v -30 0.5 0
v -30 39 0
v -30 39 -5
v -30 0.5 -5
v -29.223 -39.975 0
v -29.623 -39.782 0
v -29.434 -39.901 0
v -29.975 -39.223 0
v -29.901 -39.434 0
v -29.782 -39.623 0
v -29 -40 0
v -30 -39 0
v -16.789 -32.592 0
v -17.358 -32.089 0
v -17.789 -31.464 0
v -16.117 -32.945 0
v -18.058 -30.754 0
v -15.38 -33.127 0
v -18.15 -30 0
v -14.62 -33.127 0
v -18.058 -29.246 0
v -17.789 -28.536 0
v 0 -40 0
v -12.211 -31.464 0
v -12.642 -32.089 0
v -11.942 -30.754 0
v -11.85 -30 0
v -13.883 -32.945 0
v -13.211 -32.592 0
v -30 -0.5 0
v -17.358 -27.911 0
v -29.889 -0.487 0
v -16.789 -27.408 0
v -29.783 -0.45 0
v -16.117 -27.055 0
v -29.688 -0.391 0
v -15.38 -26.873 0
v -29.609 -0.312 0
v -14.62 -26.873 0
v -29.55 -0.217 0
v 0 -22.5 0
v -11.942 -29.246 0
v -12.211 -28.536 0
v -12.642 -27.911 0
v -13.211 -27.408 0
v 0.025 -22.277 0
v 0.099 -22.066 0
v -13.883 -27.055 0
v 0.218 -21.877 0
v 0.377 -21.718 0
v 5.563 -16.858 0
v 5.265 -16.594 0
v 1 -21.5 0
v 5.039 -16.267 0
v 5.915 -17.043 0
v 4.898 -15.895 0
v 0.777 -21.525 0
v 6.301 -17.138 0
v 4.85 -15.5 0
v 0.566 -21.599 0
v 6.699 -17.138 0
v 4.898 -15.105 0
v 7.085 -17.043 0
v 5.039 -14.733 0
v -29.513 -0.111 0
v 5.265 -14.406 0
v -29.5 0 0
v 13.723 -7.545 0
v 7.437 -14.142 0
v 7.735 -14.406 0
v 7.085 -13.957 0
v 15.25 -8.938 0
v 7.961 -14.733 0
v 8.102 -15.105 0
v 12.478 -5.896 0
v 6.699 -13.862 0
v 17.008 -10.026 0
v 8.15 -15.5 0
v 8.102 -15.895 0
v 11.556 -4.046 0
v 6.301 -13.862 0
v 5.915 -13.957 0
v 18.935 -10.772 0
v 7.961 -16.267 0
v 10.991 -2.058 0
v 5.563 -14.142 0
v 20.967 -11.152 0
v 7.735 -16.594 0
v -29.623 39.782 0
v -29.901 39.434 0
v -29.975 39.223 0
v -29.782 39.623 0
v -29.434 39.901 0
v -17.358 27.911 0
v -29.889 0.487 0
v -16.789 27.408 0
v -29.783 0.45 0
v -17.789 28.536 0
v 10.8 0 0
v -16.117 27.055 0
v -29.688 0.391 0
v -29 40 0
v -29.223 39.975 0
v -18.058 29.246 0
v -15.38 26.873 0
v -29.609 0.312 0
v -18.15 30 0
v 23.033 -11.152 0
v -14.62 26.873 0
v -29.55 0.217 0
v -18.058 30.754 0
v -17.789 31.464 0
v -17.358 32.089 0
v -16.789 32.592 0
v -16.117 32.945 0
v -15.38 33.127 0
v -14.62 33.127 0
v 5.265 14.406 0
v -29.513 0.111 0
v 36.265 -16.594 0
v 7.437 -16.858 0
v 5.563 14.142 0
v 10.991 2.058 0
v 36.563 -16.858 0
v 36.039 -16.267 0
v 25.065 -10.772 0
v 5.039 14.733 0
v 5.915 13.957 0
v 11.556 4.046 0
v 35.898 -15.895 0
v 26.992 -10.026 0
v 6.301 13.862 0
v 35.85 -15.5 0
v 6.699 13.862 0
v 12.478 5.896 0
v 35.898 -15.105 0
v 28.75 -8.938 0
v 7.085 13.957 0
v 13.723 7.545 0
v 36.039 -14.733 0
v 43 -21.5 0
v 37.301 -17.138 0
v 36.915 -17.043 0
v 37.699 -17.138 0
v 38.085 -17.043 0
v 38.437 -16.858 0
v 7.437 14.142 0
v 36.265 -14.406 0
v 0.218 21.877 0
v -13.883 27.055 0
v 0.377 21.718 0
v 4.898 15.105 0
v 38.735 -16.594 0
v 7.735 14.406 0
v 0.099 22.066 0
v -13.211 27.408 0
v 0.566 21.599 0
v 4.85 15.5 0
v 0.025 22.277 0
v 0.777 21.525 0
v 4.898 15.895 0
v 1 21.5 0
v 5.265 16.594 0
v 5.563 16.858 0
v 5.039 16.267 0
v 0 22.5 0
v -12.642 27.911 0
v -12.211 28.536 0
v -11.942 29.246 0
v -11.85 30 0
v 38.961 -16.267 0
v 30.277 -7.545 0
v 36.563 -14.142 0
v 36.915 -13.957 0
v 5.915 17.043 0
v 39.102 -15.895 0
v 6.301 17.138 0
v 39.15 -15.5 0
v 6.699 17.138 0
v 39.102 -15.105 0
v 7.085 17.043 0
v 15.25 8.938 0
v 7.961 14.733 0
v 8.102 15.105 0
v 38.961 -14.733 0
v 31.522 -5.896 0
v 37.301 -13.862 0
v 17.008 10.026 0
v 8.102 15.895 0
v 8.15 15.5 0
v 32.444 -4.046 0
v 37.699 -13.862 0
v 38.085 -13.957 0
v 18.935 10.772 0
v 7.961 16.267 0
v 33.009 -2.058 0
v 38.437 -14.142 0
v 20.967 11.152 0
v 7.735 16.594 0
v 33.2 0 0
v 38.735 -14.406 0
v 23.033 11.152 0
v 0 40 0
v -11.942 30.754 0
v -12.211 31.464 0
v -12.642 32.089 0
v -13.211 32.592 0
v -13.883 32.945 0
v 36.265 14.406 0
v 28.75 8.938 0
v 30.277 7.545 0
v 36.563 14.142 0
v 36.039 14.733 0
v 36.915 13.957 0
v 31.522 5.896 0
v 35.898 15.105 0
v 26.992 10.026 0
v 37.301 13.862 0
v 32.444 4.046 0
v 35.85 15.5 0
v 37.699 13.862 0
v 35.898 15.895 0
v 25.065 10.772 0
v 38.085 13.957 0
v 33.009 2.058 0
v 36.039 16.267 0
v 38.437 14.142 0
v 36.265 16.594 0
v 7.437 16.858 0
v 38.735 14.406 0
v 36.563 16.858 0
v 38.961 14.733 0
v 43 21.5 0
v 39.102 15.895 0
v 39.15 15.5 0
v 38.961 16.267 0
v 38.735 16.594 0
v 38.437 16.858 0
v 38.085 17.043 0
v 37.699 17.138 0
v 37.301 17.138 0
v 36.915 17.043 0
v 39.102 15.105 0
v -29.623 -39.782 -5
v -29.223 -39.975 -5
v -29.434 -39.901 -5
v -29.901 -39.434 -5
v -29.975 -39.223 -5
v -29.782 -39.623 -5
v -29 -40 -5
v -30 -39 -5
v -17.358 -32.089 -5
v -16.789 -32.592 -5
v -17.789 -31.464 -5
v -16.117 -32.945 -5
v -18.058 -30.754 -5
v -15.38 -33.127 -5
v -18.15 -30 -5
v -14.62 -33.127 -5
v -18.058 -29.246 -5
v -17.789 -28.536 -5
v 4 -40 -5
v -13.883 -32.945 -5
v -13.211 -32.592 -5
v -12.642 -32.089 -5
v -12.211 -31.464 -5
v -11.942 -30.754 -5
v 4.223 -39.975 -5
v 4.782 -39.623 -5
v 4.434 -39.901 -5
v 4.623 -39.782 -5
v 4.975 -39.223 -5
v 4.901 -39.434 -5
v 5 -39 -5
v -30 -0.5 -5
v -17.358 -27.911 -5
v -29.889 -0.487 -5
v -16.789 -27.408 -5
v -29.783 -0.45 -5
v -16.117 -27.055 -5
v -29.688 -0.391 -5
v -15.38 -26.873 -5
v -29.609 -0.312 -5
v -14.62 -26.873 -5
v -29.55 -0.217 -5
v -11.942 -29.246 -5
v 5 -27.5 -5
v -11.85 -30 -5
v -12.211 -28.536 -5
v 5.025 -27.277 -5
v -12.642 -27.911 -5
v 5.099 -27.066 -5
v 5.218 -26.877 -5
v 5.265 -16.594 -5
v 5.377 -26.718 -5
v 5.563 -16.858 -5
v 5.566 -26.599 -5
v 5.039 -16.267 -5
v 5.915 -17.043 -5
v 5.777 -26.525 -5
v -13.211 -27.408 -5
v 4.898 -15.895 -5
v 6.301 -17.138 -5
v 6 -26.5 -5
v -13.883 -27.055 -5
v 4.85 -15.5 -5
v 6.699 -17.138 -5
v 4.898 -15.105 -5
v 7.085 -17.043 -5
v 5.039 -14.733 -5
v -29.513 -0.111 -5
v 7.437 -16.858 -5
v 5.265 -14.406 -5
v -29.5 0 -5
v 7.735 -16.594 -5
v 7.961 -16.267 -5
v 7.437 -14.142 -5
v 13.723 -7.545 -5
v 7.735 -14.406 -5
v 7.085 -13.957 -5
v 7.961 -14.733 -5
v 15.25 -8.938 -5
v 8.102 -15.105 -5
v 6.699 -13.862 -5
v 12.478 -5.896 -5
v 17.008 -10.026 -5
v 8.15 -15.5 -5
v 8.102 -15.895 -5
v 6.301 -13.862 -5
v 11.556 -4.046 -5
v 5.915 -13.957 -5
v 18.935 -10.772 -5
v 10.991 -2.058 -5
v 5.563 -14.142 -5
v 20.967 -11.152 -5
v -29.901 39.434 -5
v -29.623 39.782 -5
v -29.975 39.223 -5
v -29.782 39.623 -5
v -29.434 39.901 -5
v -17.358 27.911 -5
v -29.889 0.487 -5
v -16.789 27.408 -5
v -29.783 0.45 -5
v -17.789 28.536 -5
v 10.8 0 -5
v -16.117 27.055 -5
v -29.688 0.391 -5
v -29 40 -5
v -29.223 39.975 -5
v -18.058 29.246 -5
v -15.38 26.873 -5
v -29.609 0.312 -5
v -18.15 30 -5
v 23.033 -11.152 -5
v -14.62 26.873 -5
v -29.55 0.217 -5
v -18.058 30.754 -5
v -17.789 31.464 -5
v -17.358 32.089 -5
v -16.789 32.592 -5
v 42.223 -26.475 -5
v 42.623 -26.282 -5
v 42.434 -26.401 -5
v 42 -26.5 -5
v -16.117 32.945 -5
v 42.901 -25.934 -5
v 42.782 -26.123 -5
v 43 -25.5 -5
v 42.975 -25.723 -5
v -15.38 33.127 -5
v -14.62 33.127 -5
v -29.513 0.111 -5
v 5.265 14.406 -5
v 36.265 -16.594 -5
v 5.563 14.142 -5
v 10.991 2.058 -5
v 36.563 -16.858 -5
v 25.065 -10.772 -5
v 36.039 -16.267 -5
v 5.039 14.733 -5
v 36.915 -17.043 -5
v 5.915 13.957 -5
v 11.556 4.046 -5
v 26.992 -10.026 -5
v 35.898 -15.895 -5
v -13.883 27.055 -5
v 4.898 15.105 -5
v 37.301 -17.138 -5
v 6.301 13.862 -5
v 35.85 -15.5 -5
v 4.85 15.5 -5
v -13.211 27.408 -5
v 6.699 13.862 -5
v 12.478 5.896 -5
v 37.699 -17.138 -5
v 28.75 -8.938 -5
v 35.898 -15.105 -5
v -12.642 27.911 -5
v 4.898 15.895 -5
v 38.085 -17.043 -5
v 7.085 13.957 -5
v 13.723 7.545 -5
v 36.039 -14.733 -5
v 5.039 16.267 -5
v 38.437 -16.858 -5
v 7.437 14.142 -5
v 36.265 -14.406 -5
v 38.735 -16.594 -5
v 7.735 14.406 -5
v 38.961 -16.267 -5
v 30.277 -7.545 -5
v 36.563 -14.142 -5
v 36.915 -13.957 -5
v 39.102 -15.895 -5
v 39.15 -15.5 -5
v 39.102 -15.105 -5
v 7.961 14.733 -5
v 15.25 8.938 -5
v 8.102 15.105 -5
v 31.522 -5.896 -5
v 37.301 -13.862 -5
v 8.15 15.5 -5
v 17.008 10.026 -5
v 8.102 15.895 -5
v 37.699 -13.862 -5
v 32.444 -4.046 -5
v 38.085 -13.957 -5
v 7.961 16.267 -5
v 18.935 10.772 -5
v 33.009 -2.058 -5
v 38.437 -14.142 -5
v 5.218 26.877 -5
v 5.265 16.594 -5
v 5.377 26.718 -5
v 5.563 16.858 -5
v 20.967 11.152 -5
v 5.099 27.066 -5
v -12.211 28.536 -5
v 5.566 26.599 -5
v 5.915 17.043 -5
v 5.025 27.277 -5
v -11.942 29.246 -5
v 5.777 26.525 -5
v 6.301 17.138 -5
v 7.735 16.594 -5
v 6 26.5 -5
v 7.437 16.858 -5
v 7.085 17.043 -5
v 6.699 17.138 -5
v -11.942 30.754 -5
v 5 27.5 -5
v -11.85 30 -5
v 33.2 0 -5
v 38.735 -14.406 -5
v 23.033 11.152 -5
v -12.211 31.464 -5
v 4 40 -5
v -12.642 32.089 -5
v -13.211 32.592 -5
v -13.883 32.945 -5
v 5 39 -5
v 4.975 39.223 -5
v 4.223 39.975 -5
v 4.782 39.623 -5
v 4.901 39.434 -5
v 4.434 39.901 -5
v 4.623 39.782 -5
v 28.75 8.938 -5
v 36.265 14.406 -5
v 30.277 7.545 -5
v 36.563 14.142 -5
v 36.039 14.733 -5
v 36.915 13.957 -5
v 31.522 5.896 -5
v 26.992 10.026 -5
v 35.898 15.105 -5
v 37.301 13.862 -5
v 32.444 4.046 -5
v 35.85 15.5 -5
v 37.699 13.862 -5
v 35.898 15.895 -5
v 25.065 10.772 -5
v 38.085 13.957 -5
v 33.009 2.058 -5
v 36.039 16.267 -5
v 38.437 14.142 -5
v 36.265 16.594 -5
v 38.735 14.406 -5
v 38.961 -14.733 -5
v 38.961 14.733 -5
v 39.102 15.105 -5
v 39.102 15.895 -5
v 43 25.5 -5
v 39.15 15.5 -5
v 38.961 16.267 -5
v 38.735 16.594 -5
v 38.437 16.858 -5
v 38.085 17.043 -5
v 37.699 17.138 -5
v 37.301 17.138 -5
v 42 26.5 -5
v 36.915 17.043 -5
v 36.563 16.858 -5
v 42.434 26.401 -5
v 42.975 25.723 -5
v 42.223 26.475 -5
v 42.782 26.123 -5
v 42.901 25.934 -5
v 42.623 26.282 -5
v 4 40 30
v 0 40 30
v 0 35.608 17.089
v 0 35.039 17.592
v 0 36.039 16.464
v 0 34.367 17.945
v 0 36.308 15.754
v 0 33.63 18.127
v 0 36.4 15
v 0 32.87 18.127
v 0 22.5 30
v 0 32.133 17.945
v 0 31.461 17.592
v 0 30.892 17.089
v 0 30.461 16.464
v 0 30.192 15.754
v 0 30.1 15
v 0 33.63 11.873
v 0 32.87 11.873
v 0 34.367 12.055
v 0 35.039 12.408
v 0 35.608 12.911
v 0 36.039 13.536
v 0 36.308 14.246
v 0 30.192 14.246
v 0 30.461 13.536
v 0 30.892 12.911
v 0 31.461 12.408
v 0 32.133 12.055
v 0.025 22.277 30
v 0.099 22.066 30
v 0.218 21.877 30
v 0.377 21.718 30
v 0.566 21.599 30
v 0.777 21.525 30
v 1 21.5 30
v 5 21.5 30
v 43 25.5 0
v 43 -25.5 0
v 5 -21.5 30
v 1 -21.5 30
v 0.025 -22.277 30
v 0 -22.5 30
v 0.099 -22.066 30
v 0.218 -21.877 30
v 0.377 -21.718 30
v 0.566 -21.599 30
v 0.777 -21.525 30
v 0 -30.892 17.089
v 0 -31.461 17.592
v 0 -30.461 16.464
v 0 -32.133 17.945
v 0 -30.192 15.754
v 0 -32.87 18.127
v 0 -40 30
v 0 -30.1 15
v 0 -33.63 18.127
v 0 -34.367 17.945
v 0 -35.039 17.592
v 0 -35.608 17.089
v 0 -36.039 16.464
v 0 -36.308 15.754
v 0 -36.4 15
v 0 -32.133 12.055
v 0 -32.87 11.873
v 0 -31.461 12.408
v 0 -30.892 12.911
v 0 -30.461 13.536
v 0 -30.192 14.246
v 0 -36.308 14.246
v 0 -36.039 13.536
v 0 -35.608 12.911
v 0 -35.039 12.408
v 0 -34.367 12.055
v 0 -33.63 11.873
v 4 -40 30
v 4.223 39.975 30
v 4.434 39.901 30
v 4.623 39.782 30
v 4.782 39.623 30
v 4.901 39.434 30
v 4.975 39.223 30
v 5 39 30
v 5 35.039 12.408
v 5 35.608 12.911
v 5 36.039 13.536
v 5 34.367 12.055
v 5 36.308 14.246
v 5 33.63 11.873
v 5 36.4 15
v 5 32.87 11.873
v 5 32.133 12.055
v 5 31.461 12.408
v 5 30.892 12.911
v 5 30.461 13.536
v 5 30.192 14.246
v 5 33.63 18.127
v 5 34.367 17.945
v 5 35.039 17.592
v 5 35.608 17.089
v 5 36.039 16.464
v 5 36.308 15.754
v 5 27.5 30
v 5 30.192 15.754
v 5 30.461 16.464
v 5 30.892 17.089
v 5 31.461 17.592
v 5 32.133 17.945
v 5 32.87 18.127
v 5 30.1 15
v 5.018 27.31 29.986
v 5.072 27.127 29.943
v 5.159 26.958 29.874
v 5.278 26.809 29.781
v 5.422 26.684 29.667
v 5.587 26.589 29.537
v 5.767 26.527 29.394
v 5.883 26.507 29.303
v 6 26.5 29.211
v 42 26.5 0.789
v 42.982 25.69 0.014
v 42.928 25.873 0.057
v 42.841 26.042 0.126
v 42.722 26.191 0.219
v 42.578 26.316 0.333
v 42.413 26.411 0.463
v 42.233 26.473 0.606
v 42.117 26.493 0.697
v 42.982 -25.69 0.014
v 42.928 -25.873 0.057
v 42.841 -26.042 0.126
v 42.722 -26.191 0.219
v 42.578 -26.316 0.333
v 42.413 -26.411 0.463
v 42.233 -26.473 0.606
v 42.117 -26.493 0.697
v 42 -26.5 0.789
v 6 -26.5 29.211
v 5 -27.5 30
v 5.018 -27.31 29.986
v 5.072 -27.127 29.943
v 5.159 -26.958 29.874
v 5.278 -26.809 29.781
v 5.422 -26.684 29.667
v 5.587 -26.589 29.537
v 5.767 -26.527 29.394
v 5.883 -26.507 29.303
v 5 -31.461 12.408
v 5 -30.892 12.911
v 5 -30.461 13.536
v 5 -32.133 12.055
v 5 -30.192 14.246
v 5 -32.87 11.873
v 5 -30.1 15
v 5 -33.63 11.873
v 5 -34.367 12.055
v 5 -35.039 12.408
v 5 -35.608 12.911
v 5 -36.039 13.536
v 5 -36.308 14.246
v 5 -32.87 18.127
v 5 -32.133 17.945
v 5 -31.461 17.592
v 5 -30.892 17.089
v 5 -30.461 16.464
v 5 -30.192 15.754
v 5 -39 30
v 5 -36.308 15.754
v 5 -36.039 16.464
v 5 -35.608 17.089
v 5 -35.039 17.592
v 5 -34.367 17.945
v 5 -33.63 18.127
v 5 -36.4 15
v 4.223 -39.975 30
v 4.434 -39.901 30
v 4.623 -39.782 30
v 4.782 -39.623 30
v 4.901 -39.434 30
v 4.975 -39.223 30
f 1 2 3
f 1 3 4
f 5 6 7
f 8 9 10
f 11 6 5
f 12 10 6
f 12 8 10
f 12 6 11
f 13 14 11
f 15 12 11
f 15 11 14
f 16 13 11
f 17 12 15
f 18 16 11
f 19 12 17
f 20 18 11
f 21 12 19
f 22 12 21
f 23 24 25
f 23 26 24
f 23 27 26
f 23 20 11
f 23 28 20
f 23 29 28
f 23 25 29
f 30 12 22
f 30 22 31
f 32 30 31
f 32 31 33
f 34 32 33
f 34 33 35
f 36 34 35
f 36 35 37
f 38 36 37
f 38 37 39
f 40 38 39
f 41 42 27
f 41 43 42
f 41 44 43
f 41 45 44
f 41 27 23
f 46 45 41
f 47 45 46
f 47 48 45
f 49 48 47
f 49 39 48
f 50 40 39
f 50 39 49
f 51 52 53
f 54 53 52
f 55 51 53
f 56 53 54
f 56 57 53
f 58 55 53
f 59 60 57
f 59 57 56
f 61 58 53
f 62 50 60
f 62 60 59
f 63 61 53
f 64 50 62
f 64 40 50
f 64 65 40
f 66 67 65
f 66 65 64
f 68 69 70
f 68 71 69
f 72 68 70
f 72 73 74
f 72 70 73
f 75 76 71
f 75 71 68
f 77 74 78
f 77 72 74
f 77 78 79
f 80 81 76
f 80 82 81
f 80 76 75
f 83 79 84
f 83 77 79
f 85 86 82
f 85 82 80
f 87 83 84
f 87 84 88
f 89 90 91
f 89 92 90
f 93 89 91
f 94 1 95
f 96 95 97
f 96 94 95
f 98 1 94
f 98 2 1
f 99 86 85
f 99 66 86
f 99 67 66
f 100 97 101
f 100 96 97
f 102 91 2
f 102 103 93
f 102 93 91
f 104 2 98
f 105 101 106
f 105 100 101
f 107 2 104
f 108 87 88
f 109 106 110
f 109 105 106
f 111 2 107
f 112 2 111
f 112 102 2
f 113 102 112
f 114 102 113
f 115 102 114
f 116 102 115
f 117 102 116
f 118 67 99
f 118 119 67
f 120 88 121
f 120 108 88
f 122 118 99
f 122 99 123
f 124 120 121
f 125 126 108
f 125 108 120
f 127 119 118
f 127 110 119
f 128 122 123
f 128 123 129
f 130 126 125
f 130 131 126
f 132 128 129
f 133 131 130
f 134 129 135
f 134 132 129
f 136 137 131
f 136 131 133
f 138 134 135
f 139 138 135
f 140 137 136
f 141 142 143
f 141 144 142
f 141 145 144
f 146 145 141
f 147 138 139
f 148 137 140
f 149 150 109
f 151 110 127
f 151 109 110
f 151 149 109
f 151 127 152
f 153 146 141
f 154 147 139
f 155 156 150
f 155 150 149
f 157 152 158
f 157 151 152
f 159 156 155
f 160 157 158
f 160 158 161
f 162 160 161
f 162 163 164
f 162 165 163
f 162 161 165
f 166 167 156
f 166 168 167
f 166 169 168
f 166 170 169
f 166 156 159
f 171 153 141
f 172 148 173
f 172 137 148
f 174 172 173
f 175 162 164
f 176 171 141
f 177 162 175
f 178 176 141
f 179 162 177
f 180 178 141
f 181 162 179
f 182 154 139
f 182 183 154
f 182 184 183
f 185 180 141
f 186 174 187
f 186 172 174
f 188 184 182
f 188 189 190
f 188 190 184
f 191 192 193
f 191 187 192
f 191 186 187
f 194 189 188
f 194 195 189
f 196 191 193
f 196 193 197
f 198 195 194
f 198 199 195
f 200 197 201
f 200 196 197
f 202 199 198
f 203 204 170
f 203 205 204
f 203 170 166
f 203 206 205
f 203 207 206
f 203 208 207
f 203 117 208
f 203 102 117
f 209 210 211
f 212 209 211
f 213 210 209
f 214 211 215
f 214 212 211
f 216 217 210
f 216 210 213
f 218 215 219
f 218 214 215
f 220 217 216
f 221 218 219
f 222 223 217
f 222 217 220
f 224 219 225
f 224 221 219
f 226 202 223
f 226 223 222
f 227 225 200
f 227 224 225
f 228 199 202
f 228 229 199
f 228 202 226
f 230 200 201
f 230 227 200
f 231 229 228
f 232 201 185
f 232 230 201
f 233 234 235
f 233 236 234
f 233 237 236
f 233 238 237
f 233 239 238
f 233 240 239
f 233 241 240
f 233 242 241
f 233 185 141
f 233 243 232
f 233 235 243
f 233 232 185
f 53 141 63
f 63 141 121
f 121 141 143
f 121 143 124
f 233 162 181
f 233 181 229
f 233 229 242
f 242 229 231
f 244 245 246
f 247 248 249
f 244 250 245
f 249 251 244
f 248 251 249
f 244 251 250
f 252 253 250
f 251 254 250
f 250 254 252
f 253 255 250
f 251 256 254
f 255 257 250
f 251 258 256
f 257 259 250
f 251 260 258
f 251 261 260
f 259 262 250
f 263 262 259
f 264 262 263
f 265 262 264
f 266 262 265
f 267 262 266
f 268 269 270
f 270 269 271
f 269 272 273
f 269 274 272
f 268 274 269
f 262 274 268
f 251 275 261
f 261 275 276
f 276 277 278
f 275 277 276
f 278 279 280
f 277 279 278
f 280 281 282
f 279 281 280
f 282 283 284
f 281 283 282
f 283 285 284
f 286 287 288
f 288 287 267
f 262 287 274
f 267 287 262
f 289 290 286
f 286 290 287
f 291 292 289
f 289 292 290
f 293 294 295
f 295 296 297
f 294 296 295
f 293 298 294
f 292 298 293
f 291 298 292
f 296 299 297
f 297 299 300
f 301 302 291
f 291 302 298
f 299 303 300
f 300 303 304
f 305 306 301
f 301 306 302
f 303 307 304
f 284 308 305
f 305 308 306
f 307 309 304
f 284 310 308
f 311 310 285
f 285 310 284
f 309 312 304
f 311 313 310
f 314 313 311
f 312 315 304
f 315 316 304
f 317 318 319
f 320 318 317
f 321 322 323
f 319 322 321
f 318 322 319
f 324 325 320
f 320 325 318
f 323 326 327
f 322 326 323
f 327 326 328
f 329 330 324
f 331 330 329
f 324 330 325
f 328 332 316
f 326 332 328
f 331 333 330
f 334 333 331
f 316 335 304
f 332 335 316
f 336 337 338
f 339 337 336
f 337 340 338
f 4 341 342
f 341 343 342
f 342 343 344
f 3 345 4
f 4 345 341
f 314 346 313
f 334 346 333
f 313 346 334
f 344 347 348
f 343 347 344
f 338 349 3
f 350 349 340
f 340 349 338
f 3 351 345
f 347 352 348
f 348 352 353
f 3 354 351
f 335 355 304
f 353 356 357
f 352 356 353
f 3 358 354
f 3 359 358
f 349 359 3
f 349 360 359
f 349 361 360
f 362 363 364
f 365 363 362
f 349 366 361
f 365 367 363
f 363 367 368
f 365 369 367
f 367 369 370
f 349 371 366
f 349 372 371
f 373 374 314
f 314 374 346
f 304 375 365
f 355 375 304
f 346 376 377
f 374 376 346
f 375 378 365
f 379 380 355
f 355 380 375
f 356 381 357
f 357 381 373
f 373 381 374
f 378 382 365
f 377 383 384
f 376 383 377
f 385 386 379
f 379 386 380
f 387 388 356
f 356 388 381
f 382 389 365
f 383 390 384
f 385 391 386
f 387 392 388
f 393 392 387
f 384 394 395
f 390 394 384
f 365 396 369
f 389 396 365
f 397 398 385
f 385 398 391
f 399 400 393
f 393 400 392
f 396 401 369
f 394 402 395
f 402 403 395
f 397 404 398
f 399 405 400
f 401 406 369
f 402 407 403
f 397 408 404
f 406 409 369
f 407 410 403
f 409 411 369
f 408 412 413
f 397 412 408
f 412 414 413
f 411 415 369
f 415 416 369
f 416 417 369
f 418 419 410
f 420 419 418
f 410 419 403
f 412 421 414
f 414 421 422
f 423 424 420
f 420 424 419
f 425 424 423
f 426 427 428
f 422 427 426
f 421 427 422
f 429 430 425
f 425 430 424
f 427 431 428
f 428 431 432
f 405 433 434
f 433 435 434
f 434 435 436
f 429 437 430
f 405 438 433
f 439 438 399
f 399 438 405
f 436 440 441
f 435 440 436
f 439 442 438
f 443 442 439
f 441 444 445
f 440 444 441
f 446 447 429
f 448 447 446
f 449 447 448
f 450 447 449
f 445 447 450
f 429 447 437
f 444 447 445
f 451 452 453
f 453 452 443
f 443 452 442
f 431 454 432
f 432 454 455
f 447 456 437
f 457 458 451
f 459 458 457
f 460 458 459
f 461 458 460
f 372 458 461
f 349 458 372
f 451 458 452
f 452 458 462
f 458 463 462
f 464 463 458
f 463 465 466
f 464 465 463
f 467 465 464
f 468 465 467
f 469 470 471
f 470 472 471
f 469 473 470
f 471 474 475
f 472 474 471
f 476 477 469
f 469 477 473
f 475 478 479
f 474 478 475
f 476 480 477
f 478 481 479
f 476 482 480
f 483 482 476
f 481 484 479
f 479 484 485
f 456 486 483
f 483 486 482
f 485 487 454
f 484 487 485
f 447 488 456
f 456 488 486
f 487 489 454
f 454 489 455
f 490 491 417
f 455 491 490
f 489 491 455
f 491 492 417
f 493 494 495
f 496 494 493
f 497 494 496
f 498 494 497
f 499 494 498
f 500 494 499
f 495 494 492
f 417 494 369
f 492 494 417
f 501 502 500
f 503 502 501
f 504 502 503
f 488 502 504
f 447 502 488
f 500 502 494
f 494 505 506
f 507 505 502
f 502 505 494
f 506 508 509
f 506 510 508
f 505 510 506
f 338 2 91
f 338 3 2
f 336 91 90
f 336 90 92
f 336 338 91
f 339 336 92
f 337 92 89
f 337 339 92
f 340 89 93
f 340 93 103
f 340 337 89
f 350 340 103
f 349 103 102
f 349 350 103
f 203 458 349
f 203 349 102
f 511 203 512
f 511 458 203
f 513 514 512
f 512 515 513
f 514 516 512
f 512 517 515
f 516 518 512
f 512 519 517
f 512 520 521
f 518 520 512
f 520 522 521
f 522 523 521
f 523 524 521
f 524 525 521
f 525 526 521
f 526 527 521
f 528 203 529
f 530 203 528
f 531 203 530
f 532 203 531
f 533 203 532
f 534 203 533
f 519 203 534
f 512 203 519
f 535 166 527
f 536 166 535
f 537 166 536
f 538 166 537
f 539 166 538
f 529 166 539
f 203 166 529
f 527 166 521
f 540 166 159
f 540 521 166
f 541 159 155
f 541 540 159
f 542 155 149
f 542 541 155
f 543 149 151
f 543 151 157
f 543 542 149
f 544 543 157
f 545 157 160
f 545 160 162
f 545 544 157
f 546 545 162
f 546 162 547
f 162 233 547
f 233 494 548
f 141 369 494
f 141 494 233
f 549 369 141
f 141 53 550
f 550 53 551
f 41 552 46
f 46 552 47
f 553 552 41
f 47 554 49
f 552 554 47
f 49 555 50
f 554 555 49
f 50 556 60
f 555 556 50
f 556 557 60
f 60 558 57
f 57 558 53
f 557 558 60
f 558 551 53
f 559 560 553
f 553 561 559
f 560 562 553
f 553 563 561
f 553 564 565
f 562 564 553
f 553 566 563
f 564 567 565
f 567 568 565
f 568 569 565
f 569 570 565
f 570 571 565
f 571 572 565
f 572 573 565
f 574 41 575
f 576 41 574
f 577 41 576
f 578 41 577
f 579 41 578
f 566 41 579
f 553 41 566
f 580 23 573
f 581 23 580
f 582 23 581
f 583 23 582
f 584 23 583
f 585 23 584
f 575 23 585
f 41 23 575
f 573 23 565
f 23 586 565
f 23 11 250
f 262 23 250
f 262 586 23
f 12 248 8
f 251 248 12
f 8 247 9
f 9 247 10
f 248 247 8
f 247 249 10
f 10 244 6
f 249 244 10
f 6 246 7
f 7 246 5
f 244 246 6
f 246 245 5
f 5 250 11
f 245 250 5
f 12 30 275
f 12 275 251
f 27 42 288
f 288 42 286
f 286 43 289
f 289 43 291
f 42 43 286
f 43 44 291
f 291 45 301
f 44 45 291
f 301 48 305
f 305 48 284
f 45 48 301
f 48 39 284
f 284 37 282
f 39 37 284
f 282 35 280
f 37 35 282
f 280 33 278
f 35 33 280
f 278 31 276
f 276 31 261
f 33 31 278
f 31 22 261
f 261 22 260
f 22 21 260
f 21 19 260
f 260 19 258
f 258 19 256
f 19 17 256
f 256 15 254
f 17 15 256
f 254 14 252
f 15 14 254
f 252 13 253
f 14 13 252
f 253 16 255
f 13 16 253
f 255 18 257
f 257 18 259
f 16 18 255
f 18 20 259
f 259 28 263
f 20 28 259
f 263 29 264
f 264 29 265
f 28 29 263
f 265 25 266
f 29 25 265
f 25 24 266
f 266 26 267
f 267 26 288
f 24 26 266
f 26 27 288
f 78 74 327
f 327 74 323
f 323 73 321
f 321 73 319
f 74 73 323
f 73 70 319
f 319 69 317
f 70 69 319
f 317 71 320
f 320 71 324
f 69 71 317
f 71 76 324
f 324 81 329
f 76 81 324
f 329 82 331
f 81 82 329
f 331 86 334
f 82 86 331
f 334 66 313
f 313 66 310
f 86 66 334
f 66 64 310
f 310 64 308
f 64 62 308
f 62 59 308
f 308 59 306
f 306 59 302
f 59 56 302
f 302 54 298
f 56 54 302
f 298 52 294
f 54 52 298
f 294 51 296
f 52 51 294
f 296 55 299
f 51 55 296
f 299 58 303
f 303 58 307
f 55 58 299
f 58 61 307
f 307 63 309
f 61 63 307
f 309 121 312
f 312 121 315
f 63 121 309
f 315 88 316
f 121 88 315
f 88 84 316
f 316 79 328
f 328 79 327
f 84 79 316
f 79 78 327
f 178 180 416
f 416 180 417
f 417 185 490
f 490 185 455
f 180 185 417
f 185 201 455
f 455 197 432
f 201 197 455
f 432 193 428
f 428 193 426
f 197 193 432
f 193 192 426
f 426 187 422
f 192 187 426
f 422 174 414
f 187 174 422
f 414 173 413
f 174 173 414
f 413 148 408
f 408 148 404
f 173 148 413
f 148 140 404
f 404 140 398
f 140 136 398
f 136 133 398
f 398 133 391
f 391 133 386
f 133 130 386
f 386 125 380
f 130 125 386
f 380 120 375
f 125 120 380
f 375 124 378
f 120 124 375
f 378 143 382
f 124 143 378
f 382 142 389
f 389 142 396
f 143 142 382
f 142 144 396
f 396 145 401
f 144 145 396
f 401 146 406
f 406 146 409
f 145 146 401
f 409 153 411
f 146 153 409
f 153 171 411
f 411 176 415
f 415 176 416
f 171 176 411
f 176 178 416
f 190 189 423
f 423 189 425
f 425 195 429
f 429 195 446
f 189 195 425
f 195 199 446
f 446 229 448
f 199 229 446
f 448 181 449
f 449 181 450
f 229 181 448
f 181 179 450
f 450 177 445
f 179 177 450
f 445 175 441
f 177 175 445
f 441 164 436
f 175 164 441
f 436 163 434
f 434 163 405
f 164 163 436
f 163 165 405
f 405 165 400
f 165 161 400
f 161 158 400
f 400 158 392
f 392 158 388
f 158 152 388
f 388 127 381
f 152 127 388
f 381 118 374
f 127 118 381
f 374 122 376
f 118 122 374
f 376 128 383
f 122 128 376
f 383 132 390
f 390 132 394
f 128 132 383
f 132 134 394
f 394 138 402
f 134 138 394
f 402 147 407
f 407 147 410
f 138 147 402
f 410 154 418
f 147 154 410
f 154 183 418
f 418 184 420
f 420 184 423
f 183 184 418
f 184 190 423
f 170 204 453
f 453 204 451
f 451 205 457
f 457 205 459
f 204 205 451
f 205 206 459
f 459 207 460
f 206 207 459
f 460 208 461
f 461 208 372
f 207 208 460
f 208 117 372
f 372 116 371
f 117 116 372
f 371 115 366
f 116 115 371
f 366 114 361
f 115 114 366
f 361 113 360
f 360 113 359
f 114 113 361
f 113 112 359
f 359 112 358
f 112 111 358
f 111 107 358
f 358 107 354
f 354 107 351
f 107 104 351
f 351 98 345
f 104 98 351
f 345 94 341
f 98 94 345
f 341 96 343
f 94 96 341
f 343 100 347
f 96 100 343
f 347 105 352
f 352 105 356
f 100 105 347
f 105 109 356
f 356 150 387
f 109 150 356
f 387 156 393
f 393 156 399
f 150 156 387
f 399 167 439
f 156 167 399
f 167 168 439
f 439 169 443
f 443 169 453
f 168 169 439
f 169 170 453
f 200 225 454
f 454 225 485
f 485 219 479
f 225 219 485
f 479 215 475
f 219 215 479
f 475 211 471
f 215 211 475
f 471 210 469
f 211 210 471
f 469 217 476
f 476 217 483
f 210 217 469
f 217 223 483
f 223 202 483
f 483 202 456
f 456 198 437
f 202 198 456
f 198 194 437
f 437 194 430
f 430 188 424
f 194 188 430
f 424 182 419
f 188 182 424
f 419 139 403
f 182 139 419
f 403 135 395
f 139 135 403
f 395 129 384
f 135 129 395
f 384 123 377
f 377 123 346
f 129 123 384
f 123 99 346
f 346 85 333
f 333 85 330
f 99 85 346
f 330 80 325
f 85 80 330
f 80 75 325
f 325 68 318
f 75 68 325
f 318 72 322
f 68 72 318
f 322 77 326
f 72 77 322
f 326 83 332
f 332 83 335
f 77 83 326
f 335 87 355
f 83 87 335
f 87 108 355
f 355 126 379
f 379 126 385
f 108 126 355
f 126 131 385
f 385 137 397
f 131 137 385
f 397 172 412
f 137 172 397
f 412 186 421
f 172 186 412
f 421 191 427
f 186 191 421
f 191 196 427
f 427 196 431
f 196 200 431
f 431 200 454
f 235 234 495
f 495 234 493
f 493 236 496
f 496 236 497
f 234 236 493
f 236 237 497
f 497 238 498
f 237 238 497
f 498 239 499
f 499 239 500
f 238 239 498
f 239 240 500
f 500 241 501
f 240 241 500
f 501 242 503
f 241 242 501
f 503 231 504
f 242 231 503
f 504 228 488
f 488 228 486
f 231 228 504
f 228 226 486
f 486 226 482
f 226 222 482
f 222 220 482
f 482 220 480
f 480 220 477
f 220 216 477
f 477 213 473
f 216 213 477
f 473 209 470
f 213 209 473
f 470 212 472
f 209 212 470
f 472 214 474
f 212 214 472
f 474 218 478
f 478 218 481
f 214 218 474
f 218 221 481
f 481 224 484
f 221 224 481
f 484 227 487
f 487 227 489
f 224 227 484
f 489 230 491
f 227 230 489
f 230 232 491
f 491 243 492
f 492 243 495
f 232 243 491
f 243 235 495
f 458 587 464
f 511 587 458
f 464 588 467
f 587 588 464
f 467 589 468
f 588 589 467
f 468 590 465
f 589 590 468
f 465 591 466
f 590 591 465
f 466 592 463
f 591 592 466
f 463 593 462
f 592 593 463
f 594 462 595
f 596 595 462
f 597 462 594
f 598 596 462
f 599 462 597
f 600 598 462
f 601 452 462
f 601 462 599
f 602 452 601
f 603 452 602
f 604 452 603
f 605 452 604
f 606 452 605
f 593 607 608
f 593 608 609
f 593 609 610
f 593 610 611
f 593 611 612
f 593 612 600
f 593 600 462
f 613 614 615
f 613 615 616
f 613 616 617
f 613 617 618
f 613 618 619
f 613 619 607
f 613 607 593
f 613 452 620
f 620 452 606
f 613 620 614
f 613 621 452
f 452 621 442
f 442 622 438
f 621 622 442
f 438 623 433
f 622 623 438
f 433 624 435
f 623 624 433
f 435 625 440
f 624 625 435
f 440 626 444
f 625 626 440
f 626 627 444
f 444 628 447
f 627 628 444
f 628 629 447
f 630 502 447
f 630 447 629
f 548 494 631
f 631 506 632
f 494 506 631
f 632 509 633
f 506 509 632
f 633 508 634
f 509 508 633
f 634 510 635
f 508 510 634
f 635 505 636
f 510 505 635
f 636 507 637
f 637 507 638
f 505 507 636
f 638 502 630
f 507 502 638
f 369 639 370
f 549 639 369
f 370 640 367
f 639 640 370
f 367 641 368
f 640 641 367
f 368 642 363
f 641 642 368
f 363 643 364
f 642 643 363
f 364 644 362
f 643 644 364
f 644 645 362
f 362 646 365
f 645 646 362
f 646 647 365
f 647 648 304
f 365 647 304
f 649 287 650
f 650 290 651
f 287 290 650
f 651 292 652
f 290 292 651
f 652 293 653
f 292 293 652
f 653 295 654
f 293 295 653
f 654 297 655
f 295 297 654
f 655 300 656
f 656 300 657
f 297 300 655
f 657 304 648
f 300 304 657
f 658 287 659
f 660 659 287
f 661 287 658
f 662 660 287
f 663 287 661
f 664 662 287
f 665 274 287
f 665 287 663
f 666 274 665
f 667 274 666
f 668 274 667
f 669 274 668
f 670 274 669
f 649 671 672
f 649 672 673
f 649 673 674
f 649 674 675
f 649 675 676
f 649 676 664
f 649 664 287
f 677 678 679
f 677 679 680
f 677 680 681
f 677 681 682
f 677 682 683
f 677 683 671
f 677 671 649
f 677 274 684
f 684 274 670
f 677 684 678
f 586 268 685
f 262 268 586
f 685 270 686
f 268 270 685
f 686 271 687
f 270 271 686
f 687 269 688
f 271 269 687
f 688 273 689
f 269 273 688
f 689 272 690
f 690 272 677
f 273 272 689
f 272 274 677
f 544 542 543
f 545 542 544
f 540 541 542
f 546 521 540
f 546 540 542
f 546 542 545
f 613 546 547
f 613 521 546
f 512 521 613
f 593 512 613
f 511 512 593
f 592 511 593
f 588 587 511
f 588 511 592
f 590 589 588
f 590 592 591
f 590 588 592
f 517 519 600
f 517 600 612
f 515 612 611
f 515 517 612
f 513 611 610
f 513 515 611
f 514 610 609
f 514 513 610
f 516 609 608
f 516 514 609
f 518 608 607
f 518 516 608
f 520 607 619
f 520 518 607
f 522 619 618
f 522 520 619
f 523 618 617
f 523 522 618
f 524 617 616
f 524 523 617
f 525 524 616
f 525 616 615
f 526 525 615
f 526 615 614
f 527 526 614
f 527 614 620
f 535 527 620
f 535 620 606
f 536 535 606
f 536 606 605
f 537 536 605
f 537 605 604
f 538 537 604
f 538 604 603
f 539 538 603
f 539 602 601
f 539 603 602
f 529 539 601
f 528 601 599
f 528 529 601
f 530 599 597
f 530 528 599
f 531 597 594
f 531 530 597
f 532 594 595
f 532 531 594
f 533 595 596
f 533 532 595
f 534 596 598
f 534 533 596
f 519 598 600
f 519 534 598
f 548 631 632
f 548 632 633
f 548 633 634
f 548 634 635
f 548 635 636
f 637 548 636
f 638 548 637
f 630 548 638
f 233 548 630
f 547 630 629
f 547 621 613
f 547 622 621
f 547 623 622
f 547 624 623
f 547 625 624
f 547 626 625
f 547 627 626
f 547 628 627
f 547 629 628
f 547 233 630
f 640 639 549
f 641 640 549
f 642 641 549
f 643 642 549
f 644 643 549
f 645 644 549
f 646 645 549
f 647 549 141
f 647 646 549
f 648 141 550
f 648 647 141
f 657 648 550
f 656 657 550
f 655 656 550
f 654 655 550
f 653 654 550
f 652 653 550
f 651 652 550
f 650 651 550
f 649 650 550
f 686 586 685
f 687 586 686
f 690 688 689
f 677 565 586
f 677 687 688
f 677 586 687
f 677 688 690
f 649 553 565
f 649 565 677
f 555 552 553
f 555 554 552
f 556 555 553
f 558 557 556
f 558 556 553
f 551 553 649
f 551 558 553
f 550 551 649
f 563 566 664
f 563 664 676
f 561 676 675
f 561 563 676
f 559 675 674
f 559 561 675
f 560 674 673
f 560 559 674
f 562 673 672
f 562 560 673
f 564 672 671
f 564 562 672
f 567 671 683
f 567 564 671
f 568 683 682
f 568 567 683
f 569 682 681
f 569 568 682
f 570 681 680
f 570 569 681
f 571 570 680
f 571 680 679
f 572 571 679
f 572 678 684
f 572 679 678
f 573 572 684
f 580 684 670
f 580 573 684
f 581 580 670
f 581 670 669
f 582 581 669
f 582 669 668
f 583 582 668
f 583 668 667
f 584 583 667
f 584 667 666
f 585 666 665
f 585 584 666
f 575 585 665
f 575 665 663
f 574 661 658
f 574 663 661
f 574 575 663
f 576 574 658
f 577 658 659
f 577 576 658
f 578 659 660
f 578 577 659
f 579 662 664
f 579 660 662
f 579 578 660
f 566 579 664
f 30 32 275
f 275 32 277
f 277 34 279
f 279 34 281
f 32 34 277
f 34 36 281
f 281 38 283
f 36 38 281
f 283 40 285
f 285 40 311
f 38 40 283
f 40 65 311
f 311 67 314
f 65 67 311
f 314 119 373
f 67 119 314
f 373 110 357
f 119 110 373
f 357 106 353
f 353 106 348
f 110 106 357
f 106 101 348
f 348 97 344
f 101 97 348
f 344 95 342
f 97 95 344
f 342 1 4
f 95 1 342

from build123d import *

# Parameters (mm, degrees)
SKETCH_R             = 11.2
SKETCH_R_2           = 3.15
SKETCH_R_3           = 1.65
PAD_DEPTH            = 5
PAD001_DEPTH         = 30
SKETCH002_R          = 3.15
POCKET_DEPTH         = 43.001
POCKET001_DEPTH      = 40.001
POCKET001_DEPTH_BACK = -40.001
FILLET_R             = 1
SKETCH004_R          = 0.5
POCKET002_DEPTH      = 5.001
POCKET002_DEPTH_BACK = -30.001


with BuildPart() as part:
    # Sketch → Pad (new body)
    with BuildSketch(Plane.XY):
        Polygon((-30, 40), (-30, -40), (5, -40), (5, -26.5), (43, -26.5), (43, 26.5), (5, 26.5), (5, 40), align=None)
        with Locations((22, 0)):
            Circle(SKETCH_R, mode=Mode.SUBTRACT)
        with Locations((-15, 30)):
            Circle(SKETCH_R_2, mode=Mode.SUBTRACT)
        with Locations((-15, -30)):
            Circle(SKETCH_R_2, mode=Mode.SUBTRACT)
        with Locations((6.5, -15.5)):
            Circle(SKETCH_R_3, mode=Mode.SUBTRACT)
        with Locations((37.5, -15.5)):
            Circle(SKETCH_R_3, mode=Mode.SUBTRACT)
        with Locations((37.5, 15.5)):
            Circle(SKETCH_R_3, mode=Mode.SUBTRACT)
        with Locations((6.5, 15.5)):
            Circle(SKETCH_R_3, mode=Mode.SUBTRACT)
    extrude(amount=-PAD_DEPTH)

    # Sketch001 → Pad001 (join)
    with BuildSketch(Plane.XY):
        Polygon((0, -40), (5, -40), (5, -26.5), (43, -26.5), (43, -21.5), (0, -21.5), align=None)
        Polygon((0, 21.5), (43, 21.5), (43, 26.5), (5, 26.5), (5, 40), (0, 40), align=None)
    extrude(amount=PAD001_DEPTH)

    # Sketch002 → Pocket (cut, through all)
    with BuildSketch(Plane.YZ):
        with Locations((-33.25, 15)):
            Circle(SKETCH002_R)
        with Locations((33.25, 15)):
            Circle(SKETCH002_R)
    extrude(amount=POCKET_DEPTH, mode=Mode.SUBTRACT)

    # Sketch003 → Pocket001 (cut, two sides)
    with BuildSketch(Plane.XZ) as pocket001_sk:
        Polygon((5, 30), (43, 30), (43, 0), align=None)
    extrude(amount=-POCKET001_DEPTH, mode=Mode.SUBTRACT)
    extrude(pocket001_sk.sketch, amount=-POCKET001_DEPTH_BACK, mode=Mode.SUBTRACT)

    # Fillet
    fillet_edges = [part.edges().sort_by_distance(p)[0] for p in [
        (5, -26.5, 12.5),
        (5, 26.5, 12.5),
        (43, 26.5, -2.5),
        (43, -26.5, -2.5),
        (0, -21.5, 15),
        (0, 21.5, 15),
        (5, -40, 12.5),
        (5, 40, 12.5),
        (-30, 40, -2.5),
        (-30, -40, -2.5),
    ]]
    fillet(fillet_edges, radius=FILLET_R)

    # Sketch004 (on Face2 of Fillet) → Pocket002 (cut, two sides)
    with BuildSketch(Plane.XY) as pocket002_sk:
        with Locations((-30, 0)):
            Circle(SKETCH004_R)
    extrude(amount=-POCKET002_DEPTH, mode=Mode.SUBTRACT)
    extrude(pocket002_sk.sketch, amount=-POCKET002_DEPTH_BACK, mode=Mode.SUBTRACT)


solid = part.part
